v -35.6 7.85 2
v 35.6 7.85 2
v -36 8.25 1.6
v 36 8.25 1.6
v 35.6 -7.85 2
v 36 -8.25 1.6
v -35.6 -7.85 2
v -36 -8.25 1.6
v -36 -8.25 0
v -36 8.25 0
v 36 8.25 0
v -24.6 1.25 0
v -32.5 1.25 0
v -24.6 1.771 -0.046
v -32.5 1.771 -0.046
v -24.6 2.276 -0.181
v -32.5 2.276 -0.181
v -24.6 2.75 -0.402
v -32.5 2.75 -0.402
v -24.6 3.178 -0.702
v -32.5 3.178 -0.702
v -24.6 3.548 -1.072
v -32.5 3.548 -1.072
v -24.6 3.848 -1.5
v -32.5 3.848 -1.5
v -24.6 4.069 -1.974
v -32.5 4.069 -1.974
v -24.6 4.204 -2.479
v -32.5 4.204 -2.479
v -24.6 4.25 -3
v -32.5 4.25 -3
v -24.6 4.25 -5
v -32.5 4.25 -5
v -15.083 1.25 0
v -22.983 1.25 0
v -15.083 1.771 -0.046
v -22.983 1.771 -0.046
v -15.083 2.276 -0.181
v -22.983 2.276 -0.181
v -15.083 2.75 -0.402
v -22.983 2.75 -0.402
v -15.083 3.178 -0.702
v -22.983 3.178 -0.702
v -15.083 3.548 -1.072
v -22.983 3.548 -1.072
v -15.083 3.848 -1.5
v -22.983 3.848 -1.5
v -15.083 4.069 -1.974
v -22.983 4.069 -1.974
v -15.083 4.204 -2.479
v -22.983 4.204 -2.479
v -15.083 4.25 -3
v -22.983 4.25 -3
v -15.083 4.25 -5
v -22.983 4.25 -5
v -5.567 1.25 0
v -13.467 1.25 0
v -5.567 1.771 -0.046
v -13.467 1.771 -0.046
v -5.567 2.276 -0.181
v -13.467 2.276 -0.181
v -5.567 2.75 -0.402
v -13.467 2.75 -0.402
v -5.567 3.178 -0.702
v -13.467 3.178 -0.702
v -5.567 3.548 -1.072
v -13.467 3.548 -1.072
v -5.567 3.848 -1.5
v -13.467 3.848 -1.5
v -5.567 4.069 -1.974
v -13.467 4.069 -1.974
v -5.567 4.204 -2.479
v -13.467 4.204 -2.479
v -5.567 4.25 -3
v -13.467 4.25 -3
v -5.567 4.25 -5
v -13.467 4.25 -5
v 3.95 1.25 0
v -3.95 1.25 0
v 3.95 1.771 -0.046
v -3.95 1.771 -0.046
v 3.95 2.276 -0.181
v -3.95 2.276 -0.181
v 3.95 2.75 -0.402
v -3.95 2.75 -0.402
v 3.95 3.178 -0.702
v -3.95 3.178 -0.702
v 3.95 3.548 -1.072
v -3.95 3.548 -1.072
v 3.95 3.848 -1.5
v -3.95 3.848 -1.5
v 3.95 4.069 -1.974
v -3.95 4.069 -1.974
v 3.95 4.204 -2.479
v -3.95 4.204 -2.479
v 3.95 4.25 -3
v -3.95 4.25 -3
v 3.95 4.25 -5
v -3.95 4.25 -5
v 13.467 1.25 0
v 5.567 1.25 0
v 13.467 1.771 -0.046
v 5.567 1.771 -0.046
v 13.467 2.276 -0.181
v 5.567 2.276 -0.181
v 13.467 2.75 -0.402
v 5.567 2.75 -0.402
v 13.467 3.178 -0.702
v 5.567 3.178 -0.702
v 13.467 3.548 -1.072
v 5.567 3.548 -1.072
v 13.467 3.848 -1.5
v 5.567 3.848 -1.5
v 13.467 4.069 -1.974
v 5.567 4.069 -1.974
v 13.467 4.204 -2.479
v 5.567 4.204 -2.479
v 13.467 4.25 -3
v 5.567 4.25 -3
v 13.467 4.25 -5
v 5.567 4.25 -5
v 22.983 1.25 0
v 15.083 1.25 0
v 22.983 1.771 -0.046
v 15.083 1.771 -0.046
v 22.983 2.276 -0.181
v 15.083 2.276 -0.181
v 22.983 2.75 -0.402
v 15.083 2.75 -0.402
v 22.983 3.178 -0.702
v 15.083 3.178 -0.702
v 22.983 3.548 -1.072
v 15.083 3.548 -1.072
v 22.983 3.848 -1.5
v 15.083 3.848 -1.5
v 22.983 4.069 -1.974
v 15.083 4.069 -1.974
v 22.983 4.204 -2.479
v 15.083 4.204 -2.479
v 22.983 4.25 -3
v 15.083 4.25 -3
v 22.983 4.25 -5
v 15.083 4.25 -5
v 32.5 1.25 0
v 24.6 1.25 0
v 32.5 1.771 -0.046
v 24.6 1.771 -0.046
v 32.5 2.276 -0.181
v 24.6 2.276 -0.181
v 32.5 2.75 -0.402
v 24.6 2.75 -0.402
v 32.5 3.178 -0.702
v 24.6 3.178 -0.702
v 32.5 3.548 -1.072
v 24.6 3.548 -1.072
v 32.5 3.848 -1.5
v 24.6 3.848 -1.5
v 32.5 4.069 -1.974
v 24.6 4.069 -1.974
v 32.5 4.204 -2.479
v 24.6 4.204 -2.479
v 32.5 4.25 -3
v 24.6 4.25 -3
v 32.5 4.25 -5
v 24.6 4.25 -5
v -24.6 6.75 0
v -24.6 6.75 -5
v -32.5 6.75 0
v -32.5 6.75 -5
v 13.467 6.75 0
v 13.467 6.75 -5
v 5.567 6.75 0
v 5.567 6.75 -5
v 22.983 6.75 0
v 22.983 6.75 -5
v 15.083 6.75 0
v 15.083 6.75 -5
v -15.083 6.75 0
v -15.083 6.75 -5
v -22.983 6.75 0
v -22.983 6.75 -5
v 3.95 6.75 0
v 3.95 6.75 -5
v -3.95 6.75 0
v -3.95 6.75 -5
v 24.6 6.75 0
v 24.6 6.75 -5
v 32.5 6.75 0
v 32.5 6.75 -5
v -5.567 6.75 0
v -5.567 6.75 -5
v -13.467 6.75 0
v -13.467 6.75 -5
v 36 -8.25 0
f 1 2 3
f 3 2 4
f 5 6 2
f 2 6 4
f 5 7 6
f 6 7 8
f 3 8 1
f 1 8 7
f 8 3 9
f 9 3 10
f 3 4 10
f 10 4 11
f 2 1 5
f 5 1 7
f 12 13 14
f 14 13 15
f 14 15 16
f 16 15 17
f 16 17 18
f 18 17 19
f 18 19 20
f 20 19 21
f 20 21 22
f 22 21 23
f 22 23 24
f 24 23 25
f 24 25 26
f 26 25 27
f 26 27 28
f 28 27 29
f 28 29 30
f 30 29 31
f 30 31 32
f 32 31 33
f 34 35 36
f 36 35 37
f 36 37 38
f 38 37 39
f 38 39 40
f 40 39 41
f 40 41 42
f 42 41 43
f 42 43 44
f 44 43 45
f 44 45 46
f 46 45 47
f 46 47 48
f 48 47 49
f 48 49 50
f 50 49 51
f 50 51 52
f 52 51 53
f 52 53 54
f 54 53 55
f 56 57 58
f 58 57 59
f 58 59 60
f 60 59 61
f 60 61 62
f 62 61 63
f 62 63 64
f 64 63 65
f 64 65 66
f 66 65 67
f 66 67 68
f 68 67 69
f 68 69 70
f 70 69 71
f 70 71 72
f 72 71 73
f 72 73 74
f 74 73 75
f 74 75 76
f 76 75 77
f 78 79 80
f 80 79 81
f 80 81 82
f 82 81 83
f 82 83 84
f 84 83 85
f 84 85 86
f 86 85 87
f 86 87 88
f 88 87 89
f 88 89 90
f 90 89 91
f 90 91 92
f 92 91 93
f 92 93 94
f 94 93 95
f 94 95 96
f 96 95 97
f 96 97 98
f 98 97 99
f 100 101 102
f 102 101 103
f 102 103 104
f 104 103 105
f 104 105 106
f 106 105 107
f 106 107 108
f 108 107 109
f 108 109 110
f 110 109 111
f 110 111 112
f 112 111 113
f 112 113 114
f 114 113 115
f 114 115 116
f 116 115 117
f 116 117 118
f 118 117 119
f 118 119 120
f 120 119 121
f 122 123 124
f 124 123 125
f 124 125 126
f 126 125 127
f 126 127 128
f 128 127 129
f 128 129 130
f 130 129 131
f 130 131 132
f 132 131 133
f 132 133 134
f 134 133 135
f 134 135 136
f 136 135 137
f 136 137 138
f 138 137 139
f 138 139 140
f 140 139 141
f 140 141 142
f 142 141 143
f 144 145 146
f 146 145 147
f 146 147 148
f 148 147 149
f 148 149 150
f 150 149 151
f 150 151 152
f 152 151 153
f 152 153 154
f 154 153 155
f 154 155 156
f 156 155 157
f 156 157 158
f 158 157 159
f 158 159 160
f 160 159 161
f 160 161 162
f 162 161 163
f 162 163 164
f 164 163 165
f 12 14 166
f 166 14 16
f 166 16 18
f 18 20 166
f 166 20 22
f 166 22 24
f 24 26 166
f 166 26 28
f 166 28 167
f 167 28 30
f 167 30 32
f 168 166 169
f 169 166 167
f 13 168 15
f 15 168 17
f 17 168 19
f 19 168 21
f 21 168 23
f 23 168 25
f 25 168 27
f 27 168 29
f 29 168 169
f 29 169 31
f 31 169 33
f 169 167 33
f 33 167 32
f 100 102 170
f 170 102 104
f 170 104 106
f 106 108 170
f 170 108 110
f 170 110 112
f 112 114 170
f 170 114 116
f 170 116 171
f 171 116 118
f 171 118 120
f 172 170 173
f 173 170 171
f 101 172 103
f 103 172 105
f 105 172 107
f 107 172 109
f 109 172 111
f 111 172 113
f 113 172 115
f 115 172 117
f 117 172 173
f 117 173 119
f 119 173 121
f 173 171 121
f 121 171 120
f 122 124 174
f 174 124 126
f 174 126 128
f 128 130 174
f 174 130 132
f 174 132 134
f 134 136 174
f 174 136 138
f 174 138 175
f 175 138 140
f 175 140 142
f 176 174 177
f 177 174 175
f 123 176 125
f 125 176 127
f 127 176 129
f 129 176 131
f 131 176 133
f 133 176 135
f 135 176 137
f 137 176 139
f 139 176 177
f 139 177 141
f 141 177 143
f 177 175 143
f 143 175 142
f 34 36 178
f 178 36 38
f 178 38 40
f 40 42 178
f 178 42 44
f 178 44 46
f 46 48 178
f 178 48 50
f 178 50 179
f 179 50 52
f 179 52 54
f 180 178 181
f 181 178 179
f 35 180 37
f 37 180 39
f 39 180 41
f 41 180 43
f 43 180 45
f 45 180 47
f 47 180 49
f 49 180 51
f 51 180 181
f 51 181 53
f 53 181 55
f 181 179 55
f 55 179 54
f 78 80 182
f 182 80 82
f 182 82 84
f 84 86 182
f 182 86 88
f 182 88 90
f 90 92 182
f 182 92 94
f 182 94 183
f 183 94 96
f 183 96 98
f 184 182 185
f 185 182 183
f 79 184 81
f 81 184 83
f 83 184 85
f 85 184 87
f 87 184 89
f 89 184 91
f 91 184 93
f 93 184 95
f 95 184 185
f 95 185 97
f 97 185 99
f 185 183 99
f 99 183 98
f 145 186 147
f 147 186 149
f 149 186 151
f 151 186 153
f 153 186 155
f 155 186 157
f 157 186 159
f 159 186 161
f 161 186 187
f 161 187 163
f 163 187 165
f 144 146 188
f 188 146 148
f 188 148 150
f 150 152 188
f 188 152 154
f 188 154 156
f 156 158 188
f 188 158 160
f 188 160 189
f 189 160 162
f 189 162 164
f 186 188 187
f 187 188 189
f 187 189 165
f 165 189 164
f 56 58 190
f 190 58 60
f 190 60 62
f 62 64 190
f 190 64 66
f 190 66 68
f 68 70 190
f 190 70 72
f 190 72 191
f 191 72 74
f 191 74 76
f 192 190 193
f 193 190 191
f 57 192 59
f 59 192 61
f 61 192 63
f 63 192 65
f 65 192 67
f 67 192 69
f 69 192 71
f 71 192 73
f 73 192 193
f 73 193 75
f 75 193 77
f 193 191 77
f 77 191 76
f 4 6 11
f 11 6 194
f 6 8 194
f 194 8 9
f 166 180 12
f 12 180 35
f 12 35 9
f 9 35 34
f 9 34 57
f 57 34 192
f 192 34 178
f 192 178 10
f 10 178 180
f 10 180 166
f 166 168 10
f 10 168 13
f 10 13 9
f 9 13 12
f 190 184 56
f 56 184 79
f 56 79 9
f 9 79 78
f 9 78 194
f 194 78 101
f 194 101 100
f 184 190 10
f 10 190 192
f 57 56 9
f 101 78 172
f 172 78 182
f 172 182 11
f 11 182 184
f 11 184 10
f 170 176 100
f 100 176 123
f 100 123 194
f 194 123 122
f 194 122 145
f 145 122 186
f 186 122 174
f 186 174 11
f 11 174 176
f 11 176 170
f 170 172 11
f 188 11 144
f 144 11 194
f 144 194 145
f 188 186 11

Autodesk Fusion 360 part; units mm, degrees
sketch "Sketch1" plane through (0, 0, 0) normal (0, 0, 1) x (1, 0, 0) in component "Cover"
  line L0 (34, 8.25) -> (-34, 8.25)
  line L1 (-34, 8.25) -> (-34, -8.25)
  line L2 (-34, -8.25) -> (34, -8.25)
  line L3 (34, -8.25) -> (34, 8.25)
  line L4 (34, 8.25) -> (-34, -8.25) construction
  line L5 (-34, 8.25) -> (34, -8.25) construction
  line L6 (-32.5, -6.75) -> (32.5, -6.75) construction
  line L7 (32.5, -6.75) -> (32.5, 6.75) construction
  line L8 (32.5, 6.75) -> (-32.5, 6.75)
  line L9 (-32.5, 6.75) -> (-32.5, -6.75) construction
  line L10 (32.5, 4.25) -> (24.6, 4.25)
  line L11 (24.6, 4.25) -> (24.6, 6.75)
  line L12 (24.6, 6.75) -> (32.5, 6.75)
  line L13 (32.5, 6.75) -> (32.5, 4.25)
  line L14 (22.9833, 6.75) -> (22.9833, 4.25)
  line L15 (15.0833, 4.25) -> (15.0833, 6.75)
  line L16 (22.9833, 4.25) -> (15.0833, 4.25)
  line L17 (15.0833, 6.75) -> (22.9833, 6.75)
  line L18 (13.4667, 6.75) -> (13.4667, 4.25)
  line L19 (5.5667, 4.25) -> (5.5667, 6.75)
  line L20 (13.4667, 4.25) -> (5.5667, 4.25)
  line L21 (5.5667, 6.75) -> (13.4667, 6.75)
  line L22 (3.95, 6.75) -> (3.95, 4.25)
  line L23 (-3.95, 4.25) -> (-3.95, 6.75)
  line L24 (3.95, 4.25) -> (-3.95, 4.25)
  line L25 (-3.95, 6.75) -> (3.95, 6.75)
  line L26 (-5.5667, 6.75) -> (-5.5667, 4.25)
  line L27 (-13.4667, 4.25) -> (-13.4667, 6.75)
  line L28 (-5.5667, 4.25) -> (-13.4667, 4.25)
  line L29 (-13.4667, 6.75) -> (-5.5667, 6.75)
  line L30 (-15.0833, 6.75) -> (-15.0833, 4.25)
  line L31 (-22.9833, 4.25) -> (-22.9833, 6.75)
  line L32 (-15.0833, 4.25) -> (-22.9833, 4.25)
  line L33 (-22.9833, 6.75) -> (-15.0833, 6.75)
  line L34 (-24.6, 6.75) -> (-24.6, 4.25)
  line L35 (-32.5, 4.25) -> (-32.5, 6.75)
  line L36 (-24.6, 4.25) -> (-32.5, 4.25)
  line L37 (-32.5, 6.75) -> (-24.6, 6.75)
  line L38 (-34, -8.25) -> (-36, -8.25)
  line L39 (-36, -8.25) -> (-36, 8.25)
  line L40 (-36, 8.25) -> (-34, 8.25)
  line L41 (-34, 8.25) -> (-34, -8.25)
  line L42 (34, -8.25) -> (36, -8.25)
  line L43 (36, -8.25) -> (36, 8.25)
  line L44 (36, 8.25) -> (34, 8.25)
  line L45 (34, 8.25) -> (34, -8.25)
  dimension "d39" = 68
  dimension "d40" = 16.5
  dimension "d42" = 7.9
  dimension "d43" = 2.5
  dimension "d46" = -57.1
  dimension "d47" = 0
  dimension "d52" = 2
  dimension "d53" = 2
extrude "Extrude1" add sketch "Sketch1" along normal blind 2 contours L0 L1 L2 L3 L41 L45 | L3 L42 L43 L44 L45 | L1 L38 L39 L40 L41 | L8 L10 L11 L12 L13 | L8 L34 L35 L36 L37 | L8 L30 L31 L32 L33 | L8 L26 L27 L28 L29 | L8 L22 L23 L24 L25 | L8 L18 L19 L20 L21 | L8 L14 L15 L16 L17 in component "Cover"
extrude "Extrude3" add sketch "Sketch1" against normal blind 5 contours L8 L10 L11 L12 L13 | L8 L34 L35 L36 L37 | L8 L30 L31 L32 L33 | L8 L26 L27 L28 L29 | L8 L22 L23 L24 L25 | L8 L18 L19 L20 L21 | L8 L14 L15 L16 L17 in component "Cover"
fillet "Fillet1" radius 3 7 edges at (28.55, 4.25, 0) (19.0333, 4.25, 0) (9.5167, 4.25, 0) (0, 4.25, 0) (-9.5167, 4.25, 0) (-19.0333, 4.25, 0) (-28.55, 4.25, 0) in component "Cover"
chamfer "Chamfer2" distance 0.4 angle 45 1 faces at (1.3167, -3.25, 2) in component "Cover"
component "Cover" placed x (1, 0, 0) y (0, 1, 0) z (0, 0, 1) at (0, 0, 0)
